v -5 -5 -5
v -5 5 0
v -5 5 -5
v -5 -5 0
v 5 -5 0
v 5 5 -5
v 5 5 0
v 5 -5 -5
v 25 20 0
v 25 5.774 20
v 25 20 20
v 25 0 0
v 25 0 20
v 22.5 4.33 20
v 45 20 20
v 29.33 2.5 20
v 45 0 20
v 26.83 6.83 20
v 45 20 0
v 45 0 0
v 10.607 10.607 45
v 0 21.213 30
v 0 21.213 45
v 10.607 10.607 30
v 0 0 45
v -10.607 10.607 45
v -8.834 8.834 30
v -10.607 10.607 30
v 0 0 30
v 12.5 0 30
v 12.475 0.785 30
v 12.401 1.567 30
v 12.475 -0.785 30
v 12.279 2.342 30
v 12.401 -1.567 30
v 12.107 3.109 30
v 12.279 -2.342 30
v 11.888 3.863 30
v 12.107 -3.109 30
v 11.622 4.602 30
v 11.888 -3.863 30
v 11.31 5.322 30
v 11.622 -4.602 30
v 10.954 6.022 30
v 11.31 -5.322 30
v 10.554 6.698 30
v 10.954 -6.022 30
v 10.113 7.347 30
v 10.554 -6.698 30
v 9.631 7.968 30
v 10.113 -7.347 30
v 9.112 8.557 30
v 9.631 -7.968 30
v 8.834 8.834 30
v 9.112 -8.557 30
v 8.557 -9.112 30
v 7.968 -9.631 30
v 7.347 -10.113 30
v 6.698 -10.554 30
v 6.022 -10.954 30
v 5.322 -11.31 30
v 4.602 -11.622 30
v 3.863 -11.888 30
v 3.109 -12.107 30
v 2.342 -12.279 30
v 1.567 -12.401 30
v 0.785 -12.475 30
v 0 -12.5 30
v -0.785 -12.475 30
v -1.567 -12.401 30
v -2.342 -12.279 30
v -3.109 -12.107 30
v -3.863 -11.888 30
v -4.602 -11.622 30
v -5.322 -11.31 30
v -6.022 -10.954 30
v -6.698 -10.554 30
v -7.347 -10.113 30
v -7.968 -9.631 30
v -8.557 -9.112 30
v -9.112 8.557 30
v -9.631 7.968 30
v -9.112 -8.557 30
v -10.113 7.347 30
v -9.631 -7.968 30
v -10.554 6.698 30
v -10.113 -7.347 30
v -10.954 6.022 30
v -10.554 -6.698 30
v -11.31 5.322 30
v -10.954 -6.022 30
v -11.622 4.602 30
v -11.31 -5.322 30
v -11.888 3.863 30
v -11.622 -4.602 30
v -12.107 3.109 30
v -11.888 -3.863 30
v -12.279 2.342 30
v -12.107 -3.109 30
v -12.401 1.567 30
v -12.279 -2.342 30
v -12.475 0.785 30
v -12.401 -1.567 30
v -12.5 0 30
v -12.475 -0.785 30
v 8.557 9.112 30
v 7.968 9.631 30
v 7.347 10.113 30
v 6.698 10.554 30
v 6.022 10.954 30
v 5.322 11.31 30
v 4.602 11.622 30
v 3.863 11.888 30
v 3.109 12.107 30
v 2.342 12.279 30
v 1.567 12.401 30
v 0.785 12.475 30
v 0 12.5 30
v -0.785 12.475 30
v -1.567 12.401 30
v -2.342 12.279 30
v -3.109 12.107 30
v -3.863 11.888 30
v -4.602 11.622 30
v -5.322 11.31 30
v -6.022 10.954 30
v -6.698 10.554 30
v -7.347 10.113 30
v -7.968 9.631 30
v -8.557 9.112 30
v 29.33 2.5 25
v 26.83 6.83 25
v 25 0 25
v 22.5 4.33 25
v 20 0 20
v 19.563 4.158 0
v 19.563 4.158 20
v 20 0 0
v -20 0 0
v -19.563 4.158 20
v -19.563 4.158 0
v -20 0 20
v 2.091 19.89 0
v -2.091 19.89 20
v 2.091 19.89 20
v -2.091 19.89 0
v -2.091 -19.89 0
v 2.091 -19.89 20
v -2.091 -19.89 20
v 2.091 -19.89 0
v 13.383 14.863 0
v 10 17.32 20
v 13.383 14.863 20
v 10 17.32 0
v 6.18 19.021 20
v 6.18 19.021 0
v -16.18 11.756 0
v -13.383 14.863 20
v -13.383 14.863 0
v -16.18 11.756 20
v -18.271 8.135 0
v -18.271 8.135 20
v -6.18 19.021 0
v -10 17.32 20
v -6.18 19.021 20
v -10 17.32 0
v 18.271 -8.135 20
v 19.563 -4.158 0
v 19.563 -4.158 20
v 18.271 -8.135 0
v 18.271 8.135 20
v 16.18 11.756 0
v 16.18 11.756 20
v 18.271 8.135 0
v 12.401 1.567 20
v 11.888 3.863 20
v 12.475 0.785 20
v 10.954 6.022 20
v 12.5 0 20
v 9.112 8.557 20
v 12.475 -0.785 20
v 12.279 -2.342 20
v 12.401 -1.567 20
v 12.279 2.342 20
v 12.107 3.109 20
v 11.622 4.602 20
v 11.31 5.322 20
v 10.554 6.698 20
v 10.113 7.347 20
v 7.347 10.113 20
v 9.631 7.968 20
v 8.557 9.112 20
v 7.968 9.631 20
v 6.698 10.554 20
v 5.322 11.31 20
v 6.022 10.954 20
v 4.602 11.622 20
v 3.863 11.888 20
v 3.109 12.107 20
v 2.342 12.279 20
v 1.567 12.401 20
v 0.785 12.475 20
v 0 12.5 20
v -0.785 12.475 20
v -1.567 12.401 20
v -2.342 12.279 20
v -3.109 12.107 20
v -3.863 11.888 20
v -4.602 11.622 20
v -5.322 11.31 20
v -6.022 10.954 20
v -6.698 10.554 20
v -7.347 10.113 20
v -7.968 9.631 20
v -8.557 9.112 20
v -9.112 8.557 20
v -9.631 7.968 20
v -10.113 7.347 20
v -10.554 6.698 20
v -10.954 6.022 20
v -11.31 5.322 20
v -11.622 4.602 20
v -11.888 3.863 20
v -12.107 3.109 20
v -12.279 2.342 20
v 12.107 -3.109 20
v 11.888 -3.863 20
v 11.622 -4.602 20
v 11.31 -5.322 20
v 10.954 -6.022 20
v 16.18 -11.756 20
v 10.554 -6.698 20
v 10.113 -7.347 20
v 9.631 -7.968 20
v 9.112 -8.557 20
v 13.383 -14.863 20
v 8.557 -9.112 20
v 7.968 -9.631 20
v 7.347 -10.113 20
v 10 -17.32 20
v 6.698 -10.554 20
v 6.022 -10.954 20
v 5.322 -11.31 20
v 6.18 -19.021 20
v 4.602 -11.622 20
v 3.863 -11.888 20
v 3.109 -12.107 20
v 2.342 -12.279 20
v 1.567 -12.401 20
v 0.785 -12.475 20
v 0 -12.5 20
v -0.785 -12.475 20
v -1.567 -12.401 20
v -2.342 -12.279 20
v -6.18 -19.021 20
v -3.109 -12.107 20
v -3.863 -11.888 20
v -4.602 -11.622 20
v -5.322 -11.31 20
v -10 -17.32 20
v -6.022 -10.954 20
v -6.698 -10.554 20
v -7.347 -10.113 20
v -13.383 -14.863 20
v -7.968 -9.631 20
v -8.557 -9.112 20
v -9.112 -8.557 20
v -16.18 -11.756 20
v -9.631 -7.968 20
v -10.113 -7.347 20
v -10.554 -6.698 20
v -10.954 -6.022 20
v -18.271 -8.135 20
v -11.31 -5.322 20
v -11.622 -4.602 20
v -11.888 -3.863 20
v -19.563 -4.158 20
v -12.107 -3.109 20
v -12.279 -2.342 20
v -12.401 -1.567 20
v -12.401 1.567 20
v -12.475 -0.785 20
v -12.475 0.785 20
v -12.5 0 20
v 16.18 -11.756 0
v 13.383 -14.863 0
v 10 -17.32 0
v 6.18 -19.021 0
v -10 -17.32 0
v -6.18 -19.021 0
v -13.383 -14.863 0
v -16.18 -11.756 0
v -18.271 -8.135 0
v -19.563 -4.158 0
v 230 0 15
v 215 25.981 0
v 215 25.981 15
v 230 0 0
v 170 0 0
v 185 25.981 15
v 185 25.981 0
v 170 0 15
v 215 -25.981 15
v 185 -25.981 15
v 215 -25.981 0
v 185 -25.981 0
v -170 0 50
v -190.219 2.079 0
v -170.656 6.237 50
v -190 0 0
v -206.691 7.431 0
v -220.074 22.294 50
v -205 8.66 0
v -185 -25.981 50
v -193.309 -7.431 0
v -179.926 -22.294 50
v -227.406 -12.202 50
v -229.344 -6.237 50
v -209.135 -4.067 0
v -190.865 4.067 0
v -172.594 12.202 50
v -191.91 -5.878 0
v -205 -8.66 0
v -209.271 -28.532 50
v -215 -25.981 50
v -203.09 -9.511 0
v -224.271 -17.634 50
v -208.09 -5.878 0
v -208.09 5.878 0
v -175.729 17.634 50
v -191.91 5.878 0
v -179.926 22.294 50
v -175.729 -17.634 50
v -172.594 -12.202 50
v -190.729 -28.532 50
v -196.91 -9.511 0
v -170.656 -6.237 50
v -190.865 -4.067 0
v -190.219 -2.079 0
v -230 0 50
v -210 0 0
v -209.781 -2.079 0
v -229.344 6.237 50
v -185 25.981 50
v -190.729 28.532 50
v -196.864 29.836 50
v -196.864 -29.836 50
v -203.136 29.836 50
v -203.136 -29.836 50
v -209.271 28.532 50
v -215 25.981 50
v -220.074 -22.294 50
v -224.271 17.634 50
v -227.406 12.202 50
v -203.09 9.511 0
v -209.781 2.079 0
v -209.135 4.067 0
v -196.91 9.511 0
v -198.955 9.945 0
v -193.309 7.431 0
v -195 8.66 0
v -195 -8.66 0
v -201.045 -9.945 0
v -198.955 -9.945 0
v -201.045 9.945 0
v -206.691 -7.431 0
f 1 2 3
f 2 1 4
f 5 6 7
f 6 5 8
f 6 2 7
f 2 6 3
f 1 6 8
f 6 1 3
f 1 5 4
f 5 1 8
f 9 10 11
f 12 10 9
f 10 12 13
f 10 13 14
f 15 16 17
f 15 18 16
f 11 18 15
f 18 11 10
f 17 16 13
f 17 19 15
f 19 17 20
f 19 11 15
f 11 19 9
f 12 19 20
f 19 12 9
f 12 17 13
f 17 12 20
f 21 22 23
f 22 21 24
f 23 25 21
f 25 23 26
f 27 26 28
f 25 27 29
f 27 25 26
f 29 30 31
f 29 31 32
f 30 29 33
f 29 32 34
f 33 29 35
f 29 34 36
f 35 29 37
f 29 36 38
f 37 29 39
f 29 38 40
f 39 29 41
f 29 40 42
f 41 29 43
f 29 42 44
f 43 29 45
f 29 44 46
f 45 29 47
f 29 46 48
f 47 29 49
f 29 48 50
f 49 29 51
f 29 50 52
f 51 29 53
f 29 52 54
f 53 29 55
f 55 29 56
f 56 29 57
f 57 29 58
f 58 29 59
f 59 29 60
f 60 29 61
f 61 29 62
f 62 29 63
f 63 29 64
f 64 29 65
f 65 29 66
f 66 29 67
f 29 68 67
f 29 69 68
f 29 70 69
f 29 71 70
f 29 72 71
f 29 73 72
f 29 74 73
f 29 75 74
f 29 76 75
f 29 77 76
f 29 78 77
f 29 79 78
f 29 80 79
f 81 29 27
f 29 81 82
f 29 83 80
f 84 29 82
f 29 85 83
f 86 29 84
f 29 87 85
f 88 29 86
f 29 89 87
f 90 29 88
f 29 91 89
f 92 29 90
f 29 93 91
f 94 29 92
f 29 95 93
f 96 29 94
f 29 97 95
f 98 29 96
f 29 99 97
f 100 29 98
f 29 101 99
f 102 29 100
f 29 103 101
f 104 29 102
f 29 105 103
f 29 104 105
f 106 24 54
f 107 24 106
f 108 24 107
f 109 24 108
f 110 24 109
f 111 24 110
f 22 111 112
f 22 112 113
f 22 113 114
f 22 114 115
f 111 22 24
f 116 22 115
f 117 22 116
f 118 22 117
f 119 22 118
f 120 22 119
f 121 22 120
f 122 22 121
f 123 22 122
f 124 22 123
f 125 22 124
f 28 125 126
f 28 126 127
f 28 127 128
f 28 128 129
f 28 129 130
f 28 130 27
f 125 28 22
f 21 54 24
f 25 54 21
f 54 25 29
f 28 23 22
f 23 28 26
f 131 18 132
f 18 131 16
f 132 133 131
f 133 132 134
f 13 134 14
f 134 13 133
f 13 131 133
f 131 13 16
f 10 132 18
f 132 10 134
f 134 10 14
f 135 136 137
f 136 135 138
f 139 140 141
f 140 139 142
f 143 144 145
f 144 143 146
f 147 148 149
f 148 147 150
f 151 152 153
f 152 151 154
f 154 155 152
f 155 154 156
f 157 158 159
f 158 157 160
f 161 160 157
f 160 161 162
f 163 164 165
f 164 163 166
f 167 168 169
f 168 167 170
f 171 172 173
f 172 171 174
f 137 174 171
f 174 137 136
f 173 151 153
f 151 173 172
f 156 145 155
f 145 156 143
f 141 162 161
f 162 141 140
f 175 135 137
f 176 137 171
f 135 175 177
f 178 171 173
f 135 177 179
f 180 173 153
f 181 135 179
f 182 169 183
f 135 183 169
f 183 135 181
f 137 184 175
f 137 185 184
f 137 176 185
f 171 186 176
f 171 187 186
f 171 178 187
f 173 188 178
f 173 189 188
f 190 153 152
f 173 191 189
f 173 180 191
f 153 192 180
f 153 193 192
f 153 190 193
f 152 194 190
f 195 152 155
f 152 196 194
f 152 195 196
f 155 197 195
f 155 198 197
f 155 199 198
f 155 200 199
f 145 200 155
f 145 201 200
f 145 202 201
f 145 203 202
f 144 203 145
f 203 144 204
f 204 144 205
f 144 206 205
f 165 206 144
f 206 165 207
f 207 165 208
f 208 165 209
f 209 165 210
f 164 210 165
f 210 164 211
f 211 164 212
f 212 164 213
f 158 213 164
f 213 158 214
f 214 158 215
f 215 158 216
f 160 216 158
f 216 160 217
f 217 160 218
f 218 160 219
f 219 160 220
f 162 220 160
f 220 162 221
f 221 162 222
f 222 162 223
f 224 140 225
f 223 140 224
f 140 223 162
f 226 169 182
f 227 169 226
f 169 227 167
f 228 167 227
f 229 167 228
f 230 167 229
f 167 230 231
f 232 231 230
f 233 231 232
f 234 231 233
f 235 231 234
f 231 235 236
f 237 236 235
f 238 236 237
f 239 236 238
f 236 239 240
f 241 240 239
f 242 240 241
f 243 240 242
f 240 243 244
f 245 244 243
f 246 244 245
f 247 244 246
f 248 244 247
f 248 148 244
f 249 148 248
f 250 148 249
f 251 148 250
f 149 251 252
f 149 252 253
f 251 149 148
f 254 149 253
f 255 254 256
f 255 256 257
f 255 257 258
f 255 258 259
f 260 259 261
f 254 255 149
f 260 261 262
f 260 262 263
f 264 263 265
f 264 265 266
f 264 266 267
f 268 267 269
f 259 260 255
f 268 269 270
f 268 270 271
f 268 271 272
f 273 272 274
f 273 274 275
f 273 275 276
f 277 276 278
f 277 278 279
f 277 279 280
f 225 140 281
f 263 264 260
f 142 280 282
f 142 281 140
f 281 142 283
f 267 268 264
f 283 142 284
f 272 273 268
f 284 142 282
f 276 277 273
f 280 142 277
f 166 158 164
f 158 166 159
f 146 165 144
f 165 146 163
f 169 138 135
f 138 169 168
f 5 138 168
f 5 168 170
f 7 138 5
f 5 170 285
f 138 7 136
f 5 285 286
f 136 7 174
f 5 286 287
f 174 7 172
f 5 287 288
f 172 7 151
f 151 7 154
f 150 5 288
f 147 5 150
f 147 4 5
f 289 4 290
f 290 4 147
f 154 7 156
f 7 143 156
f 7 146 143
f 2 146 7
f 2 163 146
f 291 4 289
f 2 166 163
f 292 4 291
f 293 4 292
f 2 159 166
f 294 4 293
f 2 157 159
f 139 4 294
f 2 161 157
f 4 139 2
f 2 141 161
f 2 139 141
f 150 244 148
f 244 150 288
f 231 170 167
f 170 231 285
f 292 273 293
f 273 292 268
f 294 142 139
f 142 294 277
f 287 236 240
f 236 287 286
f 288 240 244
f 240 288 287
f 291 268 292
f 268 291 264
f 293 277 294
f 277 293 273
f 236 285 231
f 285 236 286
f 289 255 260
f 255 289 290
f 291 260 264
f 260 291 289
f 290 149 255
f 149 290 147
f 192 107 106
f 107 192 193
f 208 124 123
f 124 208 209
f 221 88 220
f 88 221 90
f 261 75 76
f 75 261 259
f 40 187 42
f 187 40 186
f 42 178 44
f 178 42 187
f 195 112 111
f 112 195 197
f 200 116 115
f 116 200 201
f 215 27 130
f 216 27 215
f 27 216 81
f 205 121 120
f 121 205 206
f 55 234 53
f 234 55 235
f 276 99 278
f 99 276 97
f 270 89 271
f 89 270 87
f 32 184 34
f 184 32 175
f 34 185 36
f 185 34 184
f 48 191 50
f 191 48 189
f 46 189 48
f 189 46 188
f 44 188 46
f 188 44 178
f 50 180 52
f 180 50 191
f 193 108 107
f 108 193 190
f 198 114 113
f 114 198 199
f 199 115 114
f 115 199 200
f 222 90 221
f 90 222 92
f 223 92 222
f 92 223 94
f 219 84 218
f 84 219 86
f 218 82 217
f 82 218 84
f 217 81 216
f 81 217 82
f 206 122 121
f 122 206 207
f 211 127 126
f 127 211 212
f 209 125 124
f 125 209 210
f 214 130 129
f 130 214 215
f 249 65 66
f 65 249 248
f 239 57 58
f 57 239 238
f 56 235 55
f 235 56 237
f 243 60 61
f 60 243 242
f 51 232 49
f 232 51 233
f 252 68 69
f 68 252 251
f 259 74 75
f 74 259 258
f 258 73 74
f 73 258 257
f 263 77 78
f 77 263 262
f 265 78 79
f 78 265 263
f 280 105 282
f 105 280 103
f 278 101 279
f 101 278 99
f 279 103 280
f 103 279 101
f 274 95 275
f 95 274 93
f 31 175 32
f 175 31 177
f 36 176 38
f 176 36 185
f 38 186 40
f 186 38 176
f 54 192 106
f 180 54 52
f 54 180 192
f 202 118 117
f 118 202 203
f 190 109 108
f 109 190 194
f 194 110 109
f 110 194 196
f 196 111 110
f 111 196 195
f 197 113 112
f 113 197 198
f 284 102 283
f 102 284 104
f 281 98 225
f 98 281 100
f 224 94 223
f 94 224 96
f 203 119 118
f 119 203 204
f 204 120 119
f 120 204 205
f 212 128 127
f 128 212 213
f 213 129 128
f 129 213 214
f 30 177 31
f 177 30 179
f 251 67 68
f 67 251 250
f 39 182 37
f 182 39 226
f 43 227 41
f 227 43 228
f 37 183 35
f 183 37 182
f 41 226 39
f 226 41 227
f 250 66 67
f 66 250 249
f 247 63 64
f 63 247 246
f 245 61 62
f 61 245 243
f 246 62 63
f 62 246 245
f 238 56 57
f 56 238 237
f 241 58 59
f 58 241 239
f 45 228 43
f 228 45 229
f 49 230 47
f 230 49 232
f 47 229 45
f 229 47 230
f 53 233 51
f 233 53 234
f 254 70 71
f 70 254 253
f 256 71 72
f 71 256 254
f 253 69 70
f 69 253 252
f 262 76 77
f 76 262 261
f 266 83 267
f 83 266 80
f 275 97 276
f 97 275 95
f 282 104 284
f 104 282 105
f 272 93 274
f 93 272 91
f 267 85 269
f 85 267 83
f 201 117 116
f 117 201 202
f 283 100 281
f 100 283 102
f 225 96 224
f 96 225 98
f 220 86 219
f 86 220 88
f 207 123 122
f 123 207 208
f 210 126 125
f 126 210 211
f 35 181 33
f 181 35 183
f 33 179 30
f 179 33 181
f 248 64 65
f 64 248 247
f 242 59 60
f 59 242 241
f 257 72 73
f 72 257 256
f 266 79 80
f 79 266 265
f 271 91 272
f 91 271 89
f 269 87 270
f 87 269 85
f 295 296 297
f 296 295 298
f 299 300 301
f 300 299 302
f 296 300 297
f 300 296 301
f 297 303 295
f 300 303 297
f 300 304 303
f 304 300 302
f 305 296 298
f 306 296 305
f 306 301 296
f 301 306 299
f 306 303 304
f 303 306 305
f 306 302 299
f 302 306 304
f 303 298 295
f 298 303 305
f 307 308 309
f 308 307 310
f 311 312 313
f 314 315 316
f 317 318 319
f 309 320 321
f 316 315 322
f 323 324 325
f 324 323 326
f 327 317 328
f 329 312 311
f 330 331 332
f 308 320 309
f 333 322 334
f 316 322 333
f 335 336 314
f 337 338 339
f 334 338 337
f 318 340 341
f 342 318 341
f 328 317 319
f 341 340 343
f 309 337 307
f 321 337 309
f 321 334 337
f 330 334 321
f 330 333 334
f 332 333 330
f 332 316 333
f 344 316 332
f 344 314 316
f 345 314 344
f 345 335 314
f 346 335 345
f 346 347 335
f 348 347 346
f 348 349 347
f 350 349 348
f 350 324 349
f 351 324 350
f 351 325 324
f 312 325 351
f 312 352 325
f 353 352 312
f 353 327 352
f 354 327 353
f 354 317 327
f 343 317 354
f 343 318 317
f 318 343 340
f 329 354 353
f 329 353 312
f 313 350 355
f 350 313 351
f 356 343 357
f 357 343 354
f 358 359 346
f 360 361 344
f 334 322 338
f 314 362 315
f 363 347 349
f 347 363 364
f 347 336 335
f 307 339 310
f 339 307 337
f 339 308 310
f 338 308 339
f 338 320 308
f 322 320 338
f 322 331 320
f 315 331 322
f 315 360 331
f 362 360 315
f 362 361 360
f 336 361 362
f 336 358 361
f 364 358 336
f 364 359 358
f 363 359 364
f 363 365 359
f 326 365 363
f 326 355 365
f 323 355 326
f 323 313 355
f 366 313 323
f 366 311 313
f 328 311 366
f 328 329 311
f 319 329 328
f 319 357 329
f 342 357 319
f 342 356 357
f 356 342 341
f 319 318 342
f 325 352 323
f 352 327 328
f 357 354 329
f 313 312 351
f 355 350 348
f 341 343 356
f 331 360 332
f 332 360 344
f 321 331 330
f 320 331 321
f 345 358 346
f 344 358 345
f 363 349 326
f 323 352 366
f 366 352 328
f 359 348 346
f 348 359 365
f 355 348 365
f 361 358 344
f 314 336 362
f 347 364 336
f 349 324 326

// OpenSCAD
// hola mundo OpenScad
// cubo centrado en el origen
cube([10,10,10],center=true);


// Lo movemos del origen
color("cyan")
translate([25,0,0])
    cube([20,20,20]);
    
// primero lo movemos y luego lo rotamos    
color([1,0,0,1])
rotate([0,0,45])
  translate([0,0,30])
    cube([15,15,15]);


// ahora primero trasladamos y luego rotamos
color([0,1,0,1])
    translate([25,0,20])
        rotate([0,0,30])
            cube([5,5,5]);


// Empezamos con los cilindros

color("magenta")
    cylinder(r=20,h=20);



// un cilindro con más facetas

color("pink")
    translate([0,-0,0])
        cylinder(r=25/2,h=30,$fn=100);

// O si lo hacemos con menos podemos hacer un polígono. Por ejemplo un hexágono

color("red")
    translate([200,0,0])
        cylinder(r=30,h=15,$fn=6);

// Podemos hacer un tronco de cono con el cilindro

color("lightblue")
    translate([-200,0,0])
        cylinder(r1=10,r2=30,h=50);
